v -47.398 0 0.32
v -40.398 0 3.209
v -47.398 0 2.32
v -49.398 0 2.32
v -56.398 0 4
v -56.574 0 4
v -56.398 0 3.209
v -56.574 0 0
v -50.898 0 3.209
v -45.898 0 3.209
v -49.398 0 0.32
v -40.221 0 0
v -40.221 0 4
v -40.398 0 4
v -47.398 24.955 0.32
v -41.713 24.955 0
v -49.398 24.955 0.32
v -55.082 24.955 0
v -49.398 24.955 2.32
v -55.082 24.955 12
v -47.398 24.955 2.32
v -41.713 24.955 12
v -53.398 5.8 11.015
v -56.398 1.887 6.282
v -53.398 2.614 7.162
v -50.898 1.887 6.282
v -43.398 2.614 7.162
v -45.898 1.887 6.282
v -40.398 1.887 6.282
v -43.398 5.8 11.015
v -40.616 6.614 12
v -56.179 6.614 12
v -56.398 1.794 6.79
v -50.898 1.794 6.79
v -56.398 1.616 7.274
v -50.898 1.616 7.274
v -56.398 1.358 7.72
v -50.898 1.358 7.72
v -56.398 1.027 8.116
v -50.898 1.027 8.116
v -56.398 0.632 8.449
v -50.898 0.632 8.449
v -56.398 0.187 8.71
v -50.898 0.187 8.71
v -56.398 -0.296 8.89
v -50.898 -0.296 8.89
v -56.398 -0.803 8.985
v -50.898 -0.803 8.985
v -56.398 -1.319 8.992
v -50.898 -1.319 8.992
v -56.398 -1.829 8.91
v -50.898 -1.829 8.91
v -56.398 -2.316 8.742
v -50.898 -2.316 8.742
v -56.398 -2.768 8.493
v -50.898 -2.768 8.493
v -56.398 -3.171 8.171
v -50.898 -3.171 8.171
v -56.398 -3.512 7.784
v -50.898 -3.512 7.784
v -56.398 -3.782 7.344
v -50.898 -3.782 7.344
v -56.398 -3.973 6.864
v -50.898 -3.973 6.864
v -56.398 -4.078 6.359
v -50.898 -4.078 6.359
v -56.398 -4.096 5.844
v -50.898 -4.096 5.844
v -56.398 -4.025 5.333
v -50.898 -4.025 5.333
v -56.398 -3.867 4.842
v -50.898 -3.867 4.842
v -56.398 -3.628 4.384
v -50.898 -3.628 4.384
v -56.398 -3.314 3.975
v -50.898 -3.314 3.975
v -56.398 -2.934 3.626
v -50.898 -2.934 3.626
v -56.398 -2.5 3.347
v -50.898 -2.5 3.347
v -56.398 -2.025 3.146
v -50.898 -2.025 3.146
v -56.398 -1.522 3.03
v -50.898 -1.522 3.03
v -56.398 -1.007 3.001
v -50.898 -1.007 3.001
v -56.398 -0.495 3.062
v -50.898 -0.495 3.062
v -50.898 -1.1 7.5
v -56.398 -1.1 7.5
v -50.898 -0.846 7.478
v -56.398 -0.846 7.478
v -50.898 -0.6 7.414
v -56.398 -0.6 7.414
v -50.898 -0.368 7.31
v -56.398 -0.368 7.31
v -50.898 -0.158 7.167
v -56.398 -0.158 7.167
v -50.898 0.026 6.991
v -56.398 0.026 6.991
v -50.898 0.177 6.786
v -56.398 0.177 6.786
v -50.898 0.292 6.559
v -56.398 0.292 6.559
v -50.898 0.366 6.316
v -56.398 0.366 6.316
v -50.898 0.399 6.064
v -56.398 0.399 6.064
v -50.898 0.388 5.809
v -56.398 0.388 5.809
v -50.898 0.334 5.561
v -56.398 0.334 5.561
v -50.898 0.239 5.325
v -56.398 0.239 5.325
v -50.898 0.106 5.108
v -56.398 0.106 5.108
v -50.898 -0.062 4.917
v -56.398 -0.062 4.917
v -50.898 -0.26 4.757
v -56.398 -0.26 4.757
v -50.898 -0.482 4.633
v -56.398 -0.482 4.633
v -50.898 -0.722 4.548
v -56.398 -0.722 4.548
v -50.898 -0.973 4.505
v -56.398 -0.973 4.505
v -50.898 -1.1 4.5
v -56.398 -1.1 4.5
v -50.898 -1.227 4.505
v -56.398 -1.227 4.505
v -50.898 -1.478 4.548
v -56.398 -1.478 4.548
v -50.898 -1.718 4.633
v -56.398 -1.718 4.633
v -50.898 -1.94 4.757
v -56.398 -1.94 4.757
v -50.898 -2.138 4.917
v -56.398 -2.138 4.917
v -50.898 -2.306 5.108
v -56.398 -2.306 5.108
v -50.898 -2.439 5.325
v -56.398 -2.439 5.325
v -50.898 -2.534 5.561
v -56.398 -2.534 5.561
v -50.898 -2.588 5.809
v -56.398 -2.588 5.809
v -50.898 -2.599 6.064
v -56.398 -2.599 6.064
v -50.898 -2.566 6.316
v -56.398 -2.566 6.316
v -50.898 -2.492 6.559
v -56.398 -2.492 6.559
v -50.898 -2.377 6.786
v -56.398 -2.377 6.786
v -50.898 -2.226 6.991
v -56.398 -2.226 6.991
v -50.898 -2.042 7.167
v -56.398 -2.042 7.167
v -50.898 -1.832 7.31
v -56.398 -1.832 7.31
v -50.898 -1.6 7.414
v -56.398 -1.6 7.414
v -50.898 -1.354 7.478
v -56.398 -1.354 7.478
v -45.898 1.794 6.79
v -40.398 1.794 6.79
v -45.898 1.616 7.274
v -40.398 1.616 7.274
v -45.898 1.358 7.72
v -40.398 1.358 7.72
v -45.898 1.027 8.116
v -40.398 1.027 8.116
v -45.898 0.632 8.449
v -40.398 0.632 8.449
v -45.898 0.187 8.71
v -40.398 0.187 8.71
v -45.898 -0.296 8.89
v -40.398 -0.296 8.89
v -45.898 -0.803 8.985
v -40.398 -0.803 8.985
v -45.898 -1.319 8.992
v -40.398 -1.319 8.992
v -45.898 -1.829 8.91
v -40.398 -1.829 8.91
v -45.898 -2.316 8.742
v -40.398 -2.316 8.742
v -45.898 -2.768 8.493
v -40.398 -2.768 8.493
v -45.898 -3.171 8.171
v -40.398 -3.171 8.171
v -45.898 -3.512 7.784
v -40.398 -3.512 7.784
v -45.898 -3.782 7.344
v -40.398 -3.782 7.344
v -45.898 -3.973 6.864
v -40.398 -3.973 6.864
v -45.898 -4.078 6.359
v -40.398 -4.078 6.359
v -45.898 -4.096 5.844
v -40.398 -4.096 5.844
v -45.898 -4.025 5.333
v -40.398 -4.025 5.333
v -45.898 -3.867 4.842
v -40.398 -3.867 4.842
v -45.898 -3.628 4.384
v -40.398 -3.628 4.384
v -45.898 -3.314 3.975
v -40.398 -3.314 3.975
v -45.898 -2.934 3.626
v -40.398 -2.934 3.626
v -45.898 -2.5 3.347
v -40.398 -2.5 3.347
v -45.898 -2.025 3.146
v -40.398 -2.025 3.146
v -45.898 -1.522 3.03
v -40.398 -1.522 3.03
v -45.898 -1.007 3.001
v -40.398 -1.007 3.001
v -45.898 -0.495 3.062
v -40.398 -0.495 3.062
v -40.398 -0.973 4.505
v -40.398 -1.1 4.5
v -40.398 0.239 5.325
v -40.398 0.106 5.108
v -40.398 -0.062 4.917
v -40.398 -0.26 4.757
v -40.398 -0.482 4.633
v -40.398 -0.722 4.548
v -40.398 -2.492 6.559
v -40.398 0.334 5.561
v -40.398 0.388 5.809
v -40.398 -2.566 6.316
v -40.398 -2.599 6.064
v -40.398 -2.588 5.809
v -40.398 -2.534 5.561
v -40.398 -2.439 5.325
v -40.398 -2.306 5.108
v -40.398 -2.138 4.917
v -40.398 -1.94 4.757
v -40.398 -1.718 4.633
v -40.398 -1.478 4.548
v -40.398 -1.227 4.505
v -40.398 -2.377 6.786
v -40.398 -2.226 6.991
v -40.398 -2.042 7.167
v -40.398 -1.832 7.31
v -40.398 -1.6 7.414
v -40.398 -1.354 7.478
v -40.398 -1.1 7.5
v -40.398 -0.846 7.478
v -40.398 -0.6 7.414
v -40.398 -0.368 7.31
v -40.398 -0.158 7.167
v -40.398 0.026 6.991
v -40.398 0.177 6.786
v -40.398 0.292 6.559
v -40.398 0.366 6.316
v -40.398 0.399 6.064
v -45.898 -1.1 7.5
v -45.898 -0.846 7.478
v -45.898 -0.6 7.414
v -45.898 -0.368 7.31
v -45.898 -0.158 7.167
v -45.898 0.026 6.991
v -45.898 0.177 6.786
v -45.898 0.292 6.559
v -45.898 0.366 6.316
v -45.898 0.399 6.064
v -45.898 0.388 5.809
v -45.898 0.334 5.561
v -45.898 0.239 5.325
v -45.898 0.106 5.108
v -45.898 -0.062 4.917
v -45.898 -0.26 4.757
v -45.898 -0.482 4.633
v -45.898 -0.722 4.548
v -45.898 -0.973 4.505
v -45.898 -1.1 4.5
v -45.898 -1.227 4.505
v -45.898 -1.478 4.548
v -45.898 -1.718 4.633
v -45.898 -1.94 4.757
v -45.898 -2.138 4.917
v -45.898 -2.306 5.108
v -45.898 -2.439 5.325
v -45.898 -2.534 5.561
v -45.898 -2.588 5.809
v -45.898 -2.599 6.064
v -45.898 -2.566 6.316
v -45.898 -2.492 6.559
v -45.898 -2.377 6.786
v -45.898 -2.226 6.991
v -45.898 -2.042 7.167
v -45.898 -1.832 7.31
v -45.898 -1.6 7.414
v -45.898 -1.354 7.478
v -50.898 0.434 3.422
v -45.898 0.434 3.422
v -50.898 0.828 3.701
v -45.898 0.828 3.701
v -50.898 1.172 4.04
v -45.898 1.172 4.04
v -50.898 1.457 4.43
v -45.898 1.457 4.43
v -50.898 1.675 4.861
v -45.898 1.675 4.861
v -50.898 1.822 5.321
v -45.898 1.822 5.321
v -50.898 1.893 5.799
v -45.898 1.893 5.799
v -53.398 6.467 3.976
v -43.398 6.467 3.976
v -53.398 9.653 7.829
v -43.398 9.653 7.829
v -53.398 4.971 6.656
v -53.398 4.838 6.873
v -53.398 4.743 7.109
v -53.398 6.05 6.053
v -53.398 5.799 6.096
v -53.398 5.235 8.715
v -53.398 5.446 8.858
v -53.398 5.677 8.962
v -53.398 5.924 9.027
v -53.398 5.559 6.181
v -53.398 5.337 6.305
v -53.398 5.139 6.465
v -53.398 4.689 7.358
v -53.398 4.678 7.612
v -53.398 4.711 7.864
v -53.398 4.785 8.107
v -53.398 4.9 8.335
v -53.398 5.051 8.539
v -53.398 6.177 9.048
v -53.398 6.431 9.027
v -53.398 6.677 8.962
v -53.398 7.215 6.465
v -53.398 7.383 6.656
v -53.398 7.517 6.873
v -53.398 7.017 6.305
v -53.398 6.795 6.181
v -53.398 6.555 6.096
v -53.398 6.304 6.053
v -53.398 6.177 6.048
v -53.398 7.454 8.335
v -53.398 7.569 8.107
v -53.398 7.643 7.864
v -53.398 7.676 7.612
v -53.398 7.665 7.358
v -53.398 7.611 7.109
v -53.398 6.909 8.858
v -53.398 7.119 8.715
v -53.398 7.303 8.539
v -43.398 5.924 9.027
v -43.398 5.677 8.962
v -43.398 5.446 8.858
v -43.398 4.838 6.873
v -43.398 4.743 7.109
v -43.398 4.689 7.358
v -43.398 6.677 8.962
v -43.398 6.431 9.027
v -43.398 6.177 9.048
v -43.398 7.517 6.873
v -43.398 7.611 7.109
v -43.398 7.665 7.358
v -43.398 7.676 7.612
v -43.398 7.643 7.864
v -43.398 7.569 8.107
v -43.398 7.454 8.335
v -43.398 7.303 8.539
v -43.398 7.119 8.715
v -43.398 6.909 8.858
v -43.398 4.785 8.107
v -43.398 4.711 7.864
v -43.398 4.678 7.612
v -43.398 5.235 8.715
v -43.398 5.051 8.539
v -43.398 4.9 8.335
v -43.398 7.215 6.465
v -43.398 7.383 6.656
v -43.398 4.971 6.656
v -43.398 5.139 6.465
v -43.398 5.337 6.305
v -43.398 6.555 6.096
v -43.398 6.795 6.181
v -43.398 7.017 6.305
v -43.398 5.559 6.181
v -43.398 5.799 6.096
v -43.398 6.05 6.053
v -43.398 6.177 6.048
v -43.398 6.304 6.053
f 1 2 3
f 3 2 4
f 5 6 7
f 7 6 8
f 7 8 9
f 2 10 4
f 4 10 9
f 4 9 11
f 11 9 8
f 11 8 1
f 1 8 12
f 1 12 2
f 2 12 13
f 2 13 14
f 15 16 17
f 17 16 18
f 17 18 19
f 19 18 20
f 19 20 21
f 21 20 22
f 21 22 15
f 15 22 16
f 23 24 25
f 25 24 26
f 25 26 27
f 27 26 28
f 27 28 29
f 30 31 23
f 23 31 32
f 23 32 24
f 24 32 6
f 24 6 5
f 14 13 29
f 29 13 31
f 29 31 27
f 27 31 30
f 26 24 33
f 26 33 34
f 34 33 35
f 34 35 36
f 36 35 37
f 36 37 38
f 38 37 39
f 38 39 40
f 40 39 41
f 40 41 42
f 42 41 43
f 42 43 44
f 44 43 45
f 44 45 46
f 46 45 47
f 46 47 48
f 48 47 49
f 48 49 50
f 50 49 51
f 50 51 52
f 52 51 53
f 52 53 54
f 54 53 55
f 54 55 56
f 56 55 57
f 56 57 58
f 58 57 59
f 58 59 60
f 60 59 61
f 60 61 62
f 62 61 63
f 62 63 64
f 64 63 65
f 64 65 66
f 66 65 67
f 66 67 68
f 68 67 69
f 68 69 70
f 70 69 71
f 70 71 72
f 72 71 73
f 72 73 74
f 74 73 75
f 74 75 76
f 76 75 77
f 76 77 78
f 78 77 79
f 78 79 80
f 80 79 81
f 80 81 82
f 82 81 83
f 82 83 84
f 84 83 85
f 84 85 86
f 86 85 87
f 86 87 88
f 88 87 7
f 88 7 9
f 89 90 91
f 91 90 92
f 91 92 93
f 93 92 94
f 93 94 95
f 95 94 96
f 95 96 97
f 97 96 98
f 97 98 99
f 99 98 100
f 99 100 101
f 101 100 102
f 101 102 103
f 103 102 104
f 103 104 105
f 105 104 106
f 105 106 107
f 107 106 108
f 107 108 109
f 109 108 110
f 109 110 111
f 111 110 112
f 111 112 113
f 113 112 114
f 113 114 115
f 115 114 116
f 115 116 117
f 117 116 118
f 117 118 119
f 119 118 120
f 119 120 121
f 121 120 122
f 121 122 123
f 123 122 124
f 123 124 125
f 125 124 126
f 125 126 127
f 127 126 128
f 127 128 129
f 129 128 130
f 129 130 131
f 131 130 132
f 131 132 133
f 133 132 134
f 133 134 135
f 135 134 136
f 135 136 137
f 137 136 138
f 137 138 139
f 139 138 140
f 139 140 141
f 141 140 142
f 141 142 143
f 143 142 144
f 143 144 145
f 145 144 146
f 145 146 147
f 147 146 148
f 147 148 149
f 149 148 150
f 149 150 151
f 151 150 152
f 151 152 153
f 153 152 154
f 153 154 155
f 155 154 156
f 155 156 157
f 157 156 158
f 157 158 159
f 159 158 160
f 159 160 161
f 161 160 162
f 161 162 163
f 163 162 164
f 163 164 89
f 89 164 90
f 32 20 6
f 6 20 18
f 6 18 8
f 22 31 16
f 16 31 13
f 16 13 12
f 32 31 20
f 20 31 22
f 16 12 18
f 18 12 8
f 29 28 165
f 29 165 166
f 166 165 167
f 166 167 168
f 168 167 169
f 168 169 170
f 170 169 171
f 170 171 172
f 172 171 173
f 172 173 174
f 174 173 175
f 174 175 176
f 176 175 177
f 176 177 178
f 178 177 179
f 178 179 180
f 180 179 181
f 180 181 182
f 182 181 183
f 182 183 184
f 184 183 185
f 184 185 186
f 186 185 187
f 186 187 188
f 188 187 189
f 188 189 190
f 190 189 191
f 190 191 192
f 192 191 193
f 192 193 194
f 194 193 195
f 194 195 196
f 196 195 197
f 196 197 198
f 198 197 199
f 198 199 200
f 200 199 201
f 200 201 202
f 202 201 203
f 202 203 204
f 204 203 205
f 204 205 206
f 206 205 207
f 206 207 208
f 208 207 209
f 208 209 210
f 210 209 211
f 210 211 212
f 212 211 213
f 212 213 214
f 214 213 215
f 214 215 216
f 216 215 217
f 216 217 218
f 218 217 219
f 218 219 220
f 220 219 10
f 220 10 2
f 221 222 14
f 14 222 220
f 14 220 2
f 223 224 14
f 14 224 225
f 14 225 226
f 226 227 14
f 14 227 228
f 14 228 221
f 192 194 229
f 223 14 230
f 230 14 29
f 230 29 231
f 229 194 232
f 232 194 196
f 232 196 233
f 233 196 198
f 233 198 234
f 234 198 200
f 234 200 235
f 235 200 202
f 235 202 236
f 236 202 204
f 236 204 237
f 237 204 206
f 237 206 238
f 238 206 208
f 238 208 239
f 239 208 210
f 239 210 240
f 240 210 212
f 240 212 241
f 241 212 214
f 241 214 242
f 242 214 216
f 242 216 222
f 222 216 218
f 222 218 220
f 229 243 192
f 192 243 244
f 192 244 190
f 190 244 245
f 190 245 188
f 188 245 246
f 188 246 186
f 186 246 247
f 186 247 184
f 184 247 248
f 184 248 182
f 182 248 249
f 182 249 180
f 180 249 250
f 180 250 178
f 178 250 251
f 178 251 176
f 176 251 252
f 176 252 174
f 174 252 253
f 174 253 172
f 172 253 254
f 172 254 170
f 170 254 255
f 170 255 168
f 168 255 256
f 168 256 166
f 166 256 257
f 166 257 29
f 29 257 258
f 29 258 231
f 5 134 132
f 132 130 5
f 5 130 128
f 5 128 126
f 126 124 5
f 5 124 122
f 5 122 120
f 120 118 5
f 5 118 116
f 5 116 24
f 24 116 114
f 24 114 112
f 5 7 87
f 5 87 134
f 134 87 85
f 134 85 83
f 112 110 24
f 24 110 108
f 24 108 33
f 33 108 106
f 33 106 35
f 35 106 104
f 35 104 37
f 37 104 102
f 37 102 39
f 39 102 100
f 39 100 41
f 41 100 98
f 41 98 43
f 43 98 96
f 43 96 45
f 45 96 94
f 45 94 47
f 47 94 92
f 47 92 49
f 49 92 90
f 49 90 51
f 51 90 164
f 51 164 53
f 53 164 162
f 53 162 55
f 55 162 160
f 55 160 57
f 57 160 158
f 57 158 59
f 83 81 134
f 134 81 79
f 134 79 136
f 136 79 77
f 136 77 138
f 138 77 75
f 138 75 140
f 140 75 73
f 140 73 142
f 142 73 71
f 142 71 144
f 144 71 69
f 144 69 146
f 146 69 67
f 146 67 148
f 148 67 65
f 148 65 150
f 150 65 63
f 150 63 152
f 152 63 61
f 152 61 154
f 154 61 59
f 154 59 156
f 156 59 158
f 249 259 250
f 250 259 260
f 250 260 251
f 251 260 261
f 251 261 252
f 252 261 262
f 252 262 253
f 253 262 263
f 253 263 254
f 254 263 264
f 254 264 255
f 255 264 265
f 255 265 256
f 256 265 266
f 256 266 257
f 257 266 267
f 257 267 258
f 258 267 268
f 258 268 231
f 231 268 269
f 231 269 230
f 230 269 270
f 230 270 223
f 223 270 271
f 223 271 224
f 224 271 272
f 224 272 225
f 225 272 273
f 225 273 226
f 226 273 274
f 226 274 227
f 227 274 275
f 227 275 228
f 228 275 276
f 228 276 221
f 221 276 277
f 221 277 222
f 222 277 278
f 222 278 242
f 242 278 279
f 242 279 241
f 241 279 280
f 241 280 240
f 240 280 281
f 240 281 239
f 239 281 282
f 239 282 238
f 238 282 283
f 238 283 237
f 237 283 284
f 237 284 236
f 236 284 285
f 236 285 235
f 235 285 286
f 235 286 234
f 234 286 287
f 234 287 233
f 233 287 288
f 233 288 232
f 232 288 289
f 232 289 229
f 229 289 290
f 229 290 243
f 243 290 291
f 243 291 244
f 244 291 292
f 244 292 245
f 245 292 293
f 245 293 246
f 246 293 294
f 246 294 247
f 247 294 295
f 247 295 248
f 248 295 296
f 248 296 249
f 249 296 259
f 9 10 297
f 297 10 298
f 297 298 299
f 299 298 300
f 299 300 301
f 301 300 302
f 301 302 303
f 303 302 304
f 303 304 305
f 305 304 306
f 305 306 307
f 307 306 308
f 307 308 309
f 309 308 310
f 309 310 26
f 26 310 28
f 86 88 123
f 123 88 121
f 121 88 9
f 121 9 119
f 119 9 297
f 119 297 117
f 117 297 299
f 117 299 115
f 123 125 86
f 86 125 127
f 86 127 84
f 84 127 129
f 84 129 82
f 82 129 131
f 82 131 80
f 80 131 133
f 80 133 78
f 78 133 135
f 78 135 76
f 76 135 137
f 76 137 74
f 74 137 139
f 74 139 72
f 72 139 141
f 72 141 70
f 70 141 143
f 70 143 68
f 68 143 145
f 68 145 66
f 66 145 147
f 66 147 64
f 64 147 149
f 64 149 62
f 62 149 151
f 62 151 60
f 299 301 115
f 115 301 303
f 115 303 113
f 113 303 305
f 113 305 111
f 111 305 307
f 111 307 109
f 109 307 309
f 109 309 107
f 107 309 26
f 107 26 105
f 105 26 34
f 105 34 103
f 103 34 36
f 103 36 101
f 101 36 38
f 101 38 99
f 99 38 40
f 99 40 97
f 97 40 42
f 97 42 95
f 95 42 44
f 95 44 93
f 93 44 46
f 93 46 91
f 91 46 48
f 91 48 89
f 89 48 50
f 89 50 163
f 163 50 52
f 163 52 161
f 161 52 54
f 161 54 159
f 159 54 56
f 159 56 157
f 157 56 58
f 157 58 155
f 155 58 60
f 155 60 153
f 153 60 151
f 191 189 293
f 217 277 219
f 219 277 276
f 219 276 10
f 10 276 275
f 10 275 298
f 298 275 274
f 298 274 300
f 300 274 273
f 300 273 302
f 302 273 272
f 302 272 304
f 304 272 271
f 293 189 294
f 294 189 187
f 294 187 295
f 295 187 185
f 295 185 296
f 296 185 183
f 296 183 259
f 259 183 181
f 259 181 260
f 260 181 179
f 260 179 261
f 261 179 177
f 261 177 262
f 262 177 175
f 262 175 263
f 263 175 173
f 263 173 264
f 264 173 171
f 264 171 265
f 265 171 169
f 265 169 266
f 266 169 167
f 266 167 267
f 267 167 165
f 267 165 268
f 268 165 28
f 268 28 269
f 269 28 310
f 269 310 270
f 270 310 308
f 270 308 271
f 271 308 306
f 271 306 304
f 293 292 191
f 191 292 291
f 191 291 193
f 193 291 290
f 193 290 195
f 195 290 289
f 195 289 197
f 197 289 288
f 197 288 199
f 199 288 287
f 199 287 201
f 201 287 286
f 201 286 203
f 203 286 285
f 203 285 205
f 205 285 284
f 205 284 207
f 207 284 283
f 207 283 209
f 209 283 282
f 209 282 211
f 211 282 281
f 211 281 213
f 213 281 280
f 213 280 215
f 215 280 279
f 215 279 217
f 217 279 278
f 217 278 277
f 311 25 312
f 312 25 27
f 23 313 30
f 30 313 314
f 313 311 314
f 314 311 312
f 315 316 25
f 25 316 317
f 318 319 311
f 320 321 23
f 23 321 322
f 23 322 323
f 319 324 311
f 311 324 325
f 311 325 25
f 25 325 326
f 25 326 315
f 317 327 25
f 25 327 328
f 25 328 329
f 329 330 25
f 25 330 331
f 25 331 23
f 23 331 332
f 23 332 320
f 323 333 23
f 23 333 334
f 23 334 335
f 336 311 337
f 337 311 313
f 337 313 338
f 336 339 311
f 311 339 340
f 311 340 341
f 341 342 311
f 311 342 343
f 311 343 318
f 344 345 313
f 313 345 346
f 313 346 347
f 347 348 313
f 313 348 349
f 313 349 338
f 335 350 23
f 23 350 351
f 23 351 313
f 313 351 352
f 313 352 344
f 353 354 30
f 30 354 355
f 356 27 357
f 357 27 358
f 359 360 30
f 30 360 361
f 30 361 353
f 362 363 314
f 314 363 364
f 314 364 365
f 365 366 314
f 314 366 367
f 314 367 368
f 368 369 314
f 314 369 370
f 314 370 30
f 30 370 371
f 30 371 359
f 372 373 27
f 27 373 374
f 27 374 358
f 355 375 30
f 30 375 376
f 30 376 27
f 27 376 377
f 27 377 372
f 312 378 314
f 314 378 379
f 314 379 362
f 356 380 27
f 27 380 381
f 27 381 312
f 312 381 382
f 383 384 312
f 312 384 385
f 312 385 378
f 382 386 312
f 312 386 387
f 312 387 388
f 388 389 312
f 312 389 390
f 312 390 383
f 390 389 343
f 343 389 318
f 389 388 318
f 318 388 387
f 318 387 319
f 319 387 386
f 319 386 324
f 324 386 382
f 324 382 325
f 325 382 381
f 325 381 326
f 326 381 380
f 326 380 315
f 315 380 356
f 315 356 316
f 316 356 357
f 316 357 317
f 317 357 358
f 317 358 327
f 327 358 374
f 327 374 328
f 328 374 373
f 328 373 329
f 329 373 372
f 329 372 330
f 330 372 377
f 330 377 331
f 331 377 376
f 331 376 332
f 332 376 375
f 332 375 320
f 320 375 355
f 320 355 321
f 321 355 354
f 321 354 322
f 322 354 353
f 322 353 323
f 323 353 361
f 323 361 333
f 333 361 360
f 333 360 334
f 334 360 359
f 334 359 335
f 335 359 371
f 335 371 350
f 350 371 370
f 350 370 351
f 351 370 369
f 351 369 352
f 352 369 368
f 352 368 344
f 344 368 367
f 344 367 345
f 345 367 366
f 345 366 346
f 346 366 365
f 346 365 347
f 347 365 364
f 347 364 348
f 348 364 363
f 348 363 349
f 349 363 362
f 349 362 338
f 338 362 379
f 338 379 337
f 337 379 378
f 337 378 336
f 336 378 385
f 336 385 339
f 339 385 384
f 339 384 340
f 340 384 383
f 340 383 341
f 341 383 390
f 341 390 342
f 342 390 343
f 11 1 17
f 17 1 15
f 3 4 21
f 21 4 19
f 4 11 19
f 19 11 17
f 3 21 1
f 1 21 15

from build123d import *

# Parameters (mm, degrees)
BOSS_EXTRUDE1_DEPTH     = 12
CUT_EXTRUDE1_DEPTH      = 35.812889373
CUT_EXTRUDE1_DEPTH_BACK = 35.812889373
SKETCH6_R               = 3
SKETCH6_R_2             = 1.5
BOSS_EXTRUDE2_DEPTH     = 8
SKETCH6_3_R             = 3
SKETCH6_3_R_2           = 1.5
CUT_EXTRUDE2_DEPTH      = 2.5
CUT_EXTRUDE3_DEPTH      = 5
SKETCH8_R               = 1.5
BOSS_EXTRUDE3_DEPTH     = 5.5
CUT_EXTRUDE4_DEPTH      = 35.812889373
CUT_EXTRUDE4_DEPTH_BACK = 35.812889373
SKETCH9_W               = 12
SKETCH9_H               = 6.684402113
SKETCH10_W              = 2
SKETCH10_H              = 28.550384588
CUT_EXTRUDE5_DEPTH      = 1


with BuildPart() as part:
    # Sketch1 → Boss-Extrude1 (new body)
    with BuildSketch(Plane.XY):
        with BuildLine():
            Line((-56.5742778, 0), (-40.220810234, 0))
            Line((-40.220810234, 0), (-41.713141903, 24.955419175))
            ThreePointArc((-41.713141903, 24.955419175), (-48.397544017, 31.639821288), (-55.081946131, 24.955419175))
            Line((-55.081946131, 24.955419175), (-56.5742778, 0))
        make_face()
    extrude(amount=BOSS_EXTRUDE1_DEPTH)

    # Sketch3 → Cut-Extrude1 (cut, two sides: drawn at the far end of the back side and taken through both)
    with BuildSketch(Plane(origin=(-48.397544017, 0, 0), x_dir=(0, 0, -1), z_dir=(1, 0, 0)).offset(-CUT_EXTRUDE1_DEPTH_BACK)):
        Polygon((-12, 0), (-4, 0), (-12, 6.613954944), align=None)
    extrude(amount=CUT_EXTRUDE1_DEPTH + CUT_EXTRUDE1_DEPTH_BACK, mode=Mode.SUBTRACT)

    # Sketch6 → Boss-Extrude2 (add, symmetric)
    with BuildSketch(Plane(origin=(-48.397544017, 0, 0), x_dir=(0, 0, -1), z_dir=(1, 0, 0))):
        with Locations((-6, -1.1)):
            Circle(SKETCH6_R)
        with Locations((-6, -1.1)):
            Circle(SKETCH6_R_2, mode=Mode.SUBTRACT)
    extrude(amount=BOSS_EXTRUDE2_DEPTH, both=True)

    # Sketch6<3> → Cut-Extrude2 (cut, symmetric)
    with BuildSketch(Plane(origin=(-48.397544017, 0, 0), x_dir=(0, 0, -1), z_dir=(1, 0, 0))):
        with Locations((-6, -1.1)):
            Circle(SKETCH6_3_R)
        with Locations((-6, -1.1)):
            Circle(SKETCH6_3_R_2, mode=Mode.SUBTRACT)
    extrude(amount=CUT_EXTRUDE2_DEPTH, both=True, mode=Mode.SUBTRACT)

    # Sketch7 → Cut-Extrude3 (cut, symmetric)
    with BuildSketch(Plane(origin=(-48.397544017, 0, 0), x_dir=(0, 0, -1), z_dir=(1, 0, 0))):
        Polygon((-7.161655697, 2.613881041), (-11.015220244, 5.799793827), (-7.829307458, 9.653358374), (-3.975742911, 6.467445588), align=None)
    extrude(amount=CUT_EXTRUDE3_DEPTH, both=True, mode=Mode.SUBTRACT)

    # Sketch8 → Boss-Extrude3 (add, symmetric)
    with BuildSketch(Plane(origin=(-48.397544017, 0, 0), x_dir=(0, 0, -1), z_dir=(1, 0, 0))):
        with Locations((-7.548090256, 6.177113636)):
            Circle(SKETCH8_R)
    extrude(amount=BOSS_EXTRUDE3_DEPTH, both=True)

    # Sketch9 → Cut-Extrude4 (cut, two sides: drawn at the far end of the back side and taken through both)
    with BuildSketch(Plane(origin=(-48.397544017, 0, 0), x_dir=(0, 0, -1), z_dir=(1, 0, 0)).offset(-CUT_EXTRUDE4_DEPTH_BACK)):
        with Locations((-6, 28.297620232)):
            Rectangle(SKETCH9_W, SKETCH9_H)
    extrude(amount=CUT_EXTRUDE4_DEPTH + CUT_EXTRUDE4_DEPTH_BACK, mode=Mode.SUBTRACT)

    # Sketch10 → Cut-Extrude5 (cut, symmetric)
    with BuildSketch(Plane(origin=(-48.397544017, 0, 0), x_dir=(0, 0, -1), z_dir=(1, 0, 0))):
        with Locations((-1.32, 14.275192294)):
            Rectangle(SKETCH10_W, SKETCH10_H)
    extrude(amount=CUT_EXTRUDE5_DEPTH, both=True, mode=Mode.SUBTRACT)


solid = part.part
